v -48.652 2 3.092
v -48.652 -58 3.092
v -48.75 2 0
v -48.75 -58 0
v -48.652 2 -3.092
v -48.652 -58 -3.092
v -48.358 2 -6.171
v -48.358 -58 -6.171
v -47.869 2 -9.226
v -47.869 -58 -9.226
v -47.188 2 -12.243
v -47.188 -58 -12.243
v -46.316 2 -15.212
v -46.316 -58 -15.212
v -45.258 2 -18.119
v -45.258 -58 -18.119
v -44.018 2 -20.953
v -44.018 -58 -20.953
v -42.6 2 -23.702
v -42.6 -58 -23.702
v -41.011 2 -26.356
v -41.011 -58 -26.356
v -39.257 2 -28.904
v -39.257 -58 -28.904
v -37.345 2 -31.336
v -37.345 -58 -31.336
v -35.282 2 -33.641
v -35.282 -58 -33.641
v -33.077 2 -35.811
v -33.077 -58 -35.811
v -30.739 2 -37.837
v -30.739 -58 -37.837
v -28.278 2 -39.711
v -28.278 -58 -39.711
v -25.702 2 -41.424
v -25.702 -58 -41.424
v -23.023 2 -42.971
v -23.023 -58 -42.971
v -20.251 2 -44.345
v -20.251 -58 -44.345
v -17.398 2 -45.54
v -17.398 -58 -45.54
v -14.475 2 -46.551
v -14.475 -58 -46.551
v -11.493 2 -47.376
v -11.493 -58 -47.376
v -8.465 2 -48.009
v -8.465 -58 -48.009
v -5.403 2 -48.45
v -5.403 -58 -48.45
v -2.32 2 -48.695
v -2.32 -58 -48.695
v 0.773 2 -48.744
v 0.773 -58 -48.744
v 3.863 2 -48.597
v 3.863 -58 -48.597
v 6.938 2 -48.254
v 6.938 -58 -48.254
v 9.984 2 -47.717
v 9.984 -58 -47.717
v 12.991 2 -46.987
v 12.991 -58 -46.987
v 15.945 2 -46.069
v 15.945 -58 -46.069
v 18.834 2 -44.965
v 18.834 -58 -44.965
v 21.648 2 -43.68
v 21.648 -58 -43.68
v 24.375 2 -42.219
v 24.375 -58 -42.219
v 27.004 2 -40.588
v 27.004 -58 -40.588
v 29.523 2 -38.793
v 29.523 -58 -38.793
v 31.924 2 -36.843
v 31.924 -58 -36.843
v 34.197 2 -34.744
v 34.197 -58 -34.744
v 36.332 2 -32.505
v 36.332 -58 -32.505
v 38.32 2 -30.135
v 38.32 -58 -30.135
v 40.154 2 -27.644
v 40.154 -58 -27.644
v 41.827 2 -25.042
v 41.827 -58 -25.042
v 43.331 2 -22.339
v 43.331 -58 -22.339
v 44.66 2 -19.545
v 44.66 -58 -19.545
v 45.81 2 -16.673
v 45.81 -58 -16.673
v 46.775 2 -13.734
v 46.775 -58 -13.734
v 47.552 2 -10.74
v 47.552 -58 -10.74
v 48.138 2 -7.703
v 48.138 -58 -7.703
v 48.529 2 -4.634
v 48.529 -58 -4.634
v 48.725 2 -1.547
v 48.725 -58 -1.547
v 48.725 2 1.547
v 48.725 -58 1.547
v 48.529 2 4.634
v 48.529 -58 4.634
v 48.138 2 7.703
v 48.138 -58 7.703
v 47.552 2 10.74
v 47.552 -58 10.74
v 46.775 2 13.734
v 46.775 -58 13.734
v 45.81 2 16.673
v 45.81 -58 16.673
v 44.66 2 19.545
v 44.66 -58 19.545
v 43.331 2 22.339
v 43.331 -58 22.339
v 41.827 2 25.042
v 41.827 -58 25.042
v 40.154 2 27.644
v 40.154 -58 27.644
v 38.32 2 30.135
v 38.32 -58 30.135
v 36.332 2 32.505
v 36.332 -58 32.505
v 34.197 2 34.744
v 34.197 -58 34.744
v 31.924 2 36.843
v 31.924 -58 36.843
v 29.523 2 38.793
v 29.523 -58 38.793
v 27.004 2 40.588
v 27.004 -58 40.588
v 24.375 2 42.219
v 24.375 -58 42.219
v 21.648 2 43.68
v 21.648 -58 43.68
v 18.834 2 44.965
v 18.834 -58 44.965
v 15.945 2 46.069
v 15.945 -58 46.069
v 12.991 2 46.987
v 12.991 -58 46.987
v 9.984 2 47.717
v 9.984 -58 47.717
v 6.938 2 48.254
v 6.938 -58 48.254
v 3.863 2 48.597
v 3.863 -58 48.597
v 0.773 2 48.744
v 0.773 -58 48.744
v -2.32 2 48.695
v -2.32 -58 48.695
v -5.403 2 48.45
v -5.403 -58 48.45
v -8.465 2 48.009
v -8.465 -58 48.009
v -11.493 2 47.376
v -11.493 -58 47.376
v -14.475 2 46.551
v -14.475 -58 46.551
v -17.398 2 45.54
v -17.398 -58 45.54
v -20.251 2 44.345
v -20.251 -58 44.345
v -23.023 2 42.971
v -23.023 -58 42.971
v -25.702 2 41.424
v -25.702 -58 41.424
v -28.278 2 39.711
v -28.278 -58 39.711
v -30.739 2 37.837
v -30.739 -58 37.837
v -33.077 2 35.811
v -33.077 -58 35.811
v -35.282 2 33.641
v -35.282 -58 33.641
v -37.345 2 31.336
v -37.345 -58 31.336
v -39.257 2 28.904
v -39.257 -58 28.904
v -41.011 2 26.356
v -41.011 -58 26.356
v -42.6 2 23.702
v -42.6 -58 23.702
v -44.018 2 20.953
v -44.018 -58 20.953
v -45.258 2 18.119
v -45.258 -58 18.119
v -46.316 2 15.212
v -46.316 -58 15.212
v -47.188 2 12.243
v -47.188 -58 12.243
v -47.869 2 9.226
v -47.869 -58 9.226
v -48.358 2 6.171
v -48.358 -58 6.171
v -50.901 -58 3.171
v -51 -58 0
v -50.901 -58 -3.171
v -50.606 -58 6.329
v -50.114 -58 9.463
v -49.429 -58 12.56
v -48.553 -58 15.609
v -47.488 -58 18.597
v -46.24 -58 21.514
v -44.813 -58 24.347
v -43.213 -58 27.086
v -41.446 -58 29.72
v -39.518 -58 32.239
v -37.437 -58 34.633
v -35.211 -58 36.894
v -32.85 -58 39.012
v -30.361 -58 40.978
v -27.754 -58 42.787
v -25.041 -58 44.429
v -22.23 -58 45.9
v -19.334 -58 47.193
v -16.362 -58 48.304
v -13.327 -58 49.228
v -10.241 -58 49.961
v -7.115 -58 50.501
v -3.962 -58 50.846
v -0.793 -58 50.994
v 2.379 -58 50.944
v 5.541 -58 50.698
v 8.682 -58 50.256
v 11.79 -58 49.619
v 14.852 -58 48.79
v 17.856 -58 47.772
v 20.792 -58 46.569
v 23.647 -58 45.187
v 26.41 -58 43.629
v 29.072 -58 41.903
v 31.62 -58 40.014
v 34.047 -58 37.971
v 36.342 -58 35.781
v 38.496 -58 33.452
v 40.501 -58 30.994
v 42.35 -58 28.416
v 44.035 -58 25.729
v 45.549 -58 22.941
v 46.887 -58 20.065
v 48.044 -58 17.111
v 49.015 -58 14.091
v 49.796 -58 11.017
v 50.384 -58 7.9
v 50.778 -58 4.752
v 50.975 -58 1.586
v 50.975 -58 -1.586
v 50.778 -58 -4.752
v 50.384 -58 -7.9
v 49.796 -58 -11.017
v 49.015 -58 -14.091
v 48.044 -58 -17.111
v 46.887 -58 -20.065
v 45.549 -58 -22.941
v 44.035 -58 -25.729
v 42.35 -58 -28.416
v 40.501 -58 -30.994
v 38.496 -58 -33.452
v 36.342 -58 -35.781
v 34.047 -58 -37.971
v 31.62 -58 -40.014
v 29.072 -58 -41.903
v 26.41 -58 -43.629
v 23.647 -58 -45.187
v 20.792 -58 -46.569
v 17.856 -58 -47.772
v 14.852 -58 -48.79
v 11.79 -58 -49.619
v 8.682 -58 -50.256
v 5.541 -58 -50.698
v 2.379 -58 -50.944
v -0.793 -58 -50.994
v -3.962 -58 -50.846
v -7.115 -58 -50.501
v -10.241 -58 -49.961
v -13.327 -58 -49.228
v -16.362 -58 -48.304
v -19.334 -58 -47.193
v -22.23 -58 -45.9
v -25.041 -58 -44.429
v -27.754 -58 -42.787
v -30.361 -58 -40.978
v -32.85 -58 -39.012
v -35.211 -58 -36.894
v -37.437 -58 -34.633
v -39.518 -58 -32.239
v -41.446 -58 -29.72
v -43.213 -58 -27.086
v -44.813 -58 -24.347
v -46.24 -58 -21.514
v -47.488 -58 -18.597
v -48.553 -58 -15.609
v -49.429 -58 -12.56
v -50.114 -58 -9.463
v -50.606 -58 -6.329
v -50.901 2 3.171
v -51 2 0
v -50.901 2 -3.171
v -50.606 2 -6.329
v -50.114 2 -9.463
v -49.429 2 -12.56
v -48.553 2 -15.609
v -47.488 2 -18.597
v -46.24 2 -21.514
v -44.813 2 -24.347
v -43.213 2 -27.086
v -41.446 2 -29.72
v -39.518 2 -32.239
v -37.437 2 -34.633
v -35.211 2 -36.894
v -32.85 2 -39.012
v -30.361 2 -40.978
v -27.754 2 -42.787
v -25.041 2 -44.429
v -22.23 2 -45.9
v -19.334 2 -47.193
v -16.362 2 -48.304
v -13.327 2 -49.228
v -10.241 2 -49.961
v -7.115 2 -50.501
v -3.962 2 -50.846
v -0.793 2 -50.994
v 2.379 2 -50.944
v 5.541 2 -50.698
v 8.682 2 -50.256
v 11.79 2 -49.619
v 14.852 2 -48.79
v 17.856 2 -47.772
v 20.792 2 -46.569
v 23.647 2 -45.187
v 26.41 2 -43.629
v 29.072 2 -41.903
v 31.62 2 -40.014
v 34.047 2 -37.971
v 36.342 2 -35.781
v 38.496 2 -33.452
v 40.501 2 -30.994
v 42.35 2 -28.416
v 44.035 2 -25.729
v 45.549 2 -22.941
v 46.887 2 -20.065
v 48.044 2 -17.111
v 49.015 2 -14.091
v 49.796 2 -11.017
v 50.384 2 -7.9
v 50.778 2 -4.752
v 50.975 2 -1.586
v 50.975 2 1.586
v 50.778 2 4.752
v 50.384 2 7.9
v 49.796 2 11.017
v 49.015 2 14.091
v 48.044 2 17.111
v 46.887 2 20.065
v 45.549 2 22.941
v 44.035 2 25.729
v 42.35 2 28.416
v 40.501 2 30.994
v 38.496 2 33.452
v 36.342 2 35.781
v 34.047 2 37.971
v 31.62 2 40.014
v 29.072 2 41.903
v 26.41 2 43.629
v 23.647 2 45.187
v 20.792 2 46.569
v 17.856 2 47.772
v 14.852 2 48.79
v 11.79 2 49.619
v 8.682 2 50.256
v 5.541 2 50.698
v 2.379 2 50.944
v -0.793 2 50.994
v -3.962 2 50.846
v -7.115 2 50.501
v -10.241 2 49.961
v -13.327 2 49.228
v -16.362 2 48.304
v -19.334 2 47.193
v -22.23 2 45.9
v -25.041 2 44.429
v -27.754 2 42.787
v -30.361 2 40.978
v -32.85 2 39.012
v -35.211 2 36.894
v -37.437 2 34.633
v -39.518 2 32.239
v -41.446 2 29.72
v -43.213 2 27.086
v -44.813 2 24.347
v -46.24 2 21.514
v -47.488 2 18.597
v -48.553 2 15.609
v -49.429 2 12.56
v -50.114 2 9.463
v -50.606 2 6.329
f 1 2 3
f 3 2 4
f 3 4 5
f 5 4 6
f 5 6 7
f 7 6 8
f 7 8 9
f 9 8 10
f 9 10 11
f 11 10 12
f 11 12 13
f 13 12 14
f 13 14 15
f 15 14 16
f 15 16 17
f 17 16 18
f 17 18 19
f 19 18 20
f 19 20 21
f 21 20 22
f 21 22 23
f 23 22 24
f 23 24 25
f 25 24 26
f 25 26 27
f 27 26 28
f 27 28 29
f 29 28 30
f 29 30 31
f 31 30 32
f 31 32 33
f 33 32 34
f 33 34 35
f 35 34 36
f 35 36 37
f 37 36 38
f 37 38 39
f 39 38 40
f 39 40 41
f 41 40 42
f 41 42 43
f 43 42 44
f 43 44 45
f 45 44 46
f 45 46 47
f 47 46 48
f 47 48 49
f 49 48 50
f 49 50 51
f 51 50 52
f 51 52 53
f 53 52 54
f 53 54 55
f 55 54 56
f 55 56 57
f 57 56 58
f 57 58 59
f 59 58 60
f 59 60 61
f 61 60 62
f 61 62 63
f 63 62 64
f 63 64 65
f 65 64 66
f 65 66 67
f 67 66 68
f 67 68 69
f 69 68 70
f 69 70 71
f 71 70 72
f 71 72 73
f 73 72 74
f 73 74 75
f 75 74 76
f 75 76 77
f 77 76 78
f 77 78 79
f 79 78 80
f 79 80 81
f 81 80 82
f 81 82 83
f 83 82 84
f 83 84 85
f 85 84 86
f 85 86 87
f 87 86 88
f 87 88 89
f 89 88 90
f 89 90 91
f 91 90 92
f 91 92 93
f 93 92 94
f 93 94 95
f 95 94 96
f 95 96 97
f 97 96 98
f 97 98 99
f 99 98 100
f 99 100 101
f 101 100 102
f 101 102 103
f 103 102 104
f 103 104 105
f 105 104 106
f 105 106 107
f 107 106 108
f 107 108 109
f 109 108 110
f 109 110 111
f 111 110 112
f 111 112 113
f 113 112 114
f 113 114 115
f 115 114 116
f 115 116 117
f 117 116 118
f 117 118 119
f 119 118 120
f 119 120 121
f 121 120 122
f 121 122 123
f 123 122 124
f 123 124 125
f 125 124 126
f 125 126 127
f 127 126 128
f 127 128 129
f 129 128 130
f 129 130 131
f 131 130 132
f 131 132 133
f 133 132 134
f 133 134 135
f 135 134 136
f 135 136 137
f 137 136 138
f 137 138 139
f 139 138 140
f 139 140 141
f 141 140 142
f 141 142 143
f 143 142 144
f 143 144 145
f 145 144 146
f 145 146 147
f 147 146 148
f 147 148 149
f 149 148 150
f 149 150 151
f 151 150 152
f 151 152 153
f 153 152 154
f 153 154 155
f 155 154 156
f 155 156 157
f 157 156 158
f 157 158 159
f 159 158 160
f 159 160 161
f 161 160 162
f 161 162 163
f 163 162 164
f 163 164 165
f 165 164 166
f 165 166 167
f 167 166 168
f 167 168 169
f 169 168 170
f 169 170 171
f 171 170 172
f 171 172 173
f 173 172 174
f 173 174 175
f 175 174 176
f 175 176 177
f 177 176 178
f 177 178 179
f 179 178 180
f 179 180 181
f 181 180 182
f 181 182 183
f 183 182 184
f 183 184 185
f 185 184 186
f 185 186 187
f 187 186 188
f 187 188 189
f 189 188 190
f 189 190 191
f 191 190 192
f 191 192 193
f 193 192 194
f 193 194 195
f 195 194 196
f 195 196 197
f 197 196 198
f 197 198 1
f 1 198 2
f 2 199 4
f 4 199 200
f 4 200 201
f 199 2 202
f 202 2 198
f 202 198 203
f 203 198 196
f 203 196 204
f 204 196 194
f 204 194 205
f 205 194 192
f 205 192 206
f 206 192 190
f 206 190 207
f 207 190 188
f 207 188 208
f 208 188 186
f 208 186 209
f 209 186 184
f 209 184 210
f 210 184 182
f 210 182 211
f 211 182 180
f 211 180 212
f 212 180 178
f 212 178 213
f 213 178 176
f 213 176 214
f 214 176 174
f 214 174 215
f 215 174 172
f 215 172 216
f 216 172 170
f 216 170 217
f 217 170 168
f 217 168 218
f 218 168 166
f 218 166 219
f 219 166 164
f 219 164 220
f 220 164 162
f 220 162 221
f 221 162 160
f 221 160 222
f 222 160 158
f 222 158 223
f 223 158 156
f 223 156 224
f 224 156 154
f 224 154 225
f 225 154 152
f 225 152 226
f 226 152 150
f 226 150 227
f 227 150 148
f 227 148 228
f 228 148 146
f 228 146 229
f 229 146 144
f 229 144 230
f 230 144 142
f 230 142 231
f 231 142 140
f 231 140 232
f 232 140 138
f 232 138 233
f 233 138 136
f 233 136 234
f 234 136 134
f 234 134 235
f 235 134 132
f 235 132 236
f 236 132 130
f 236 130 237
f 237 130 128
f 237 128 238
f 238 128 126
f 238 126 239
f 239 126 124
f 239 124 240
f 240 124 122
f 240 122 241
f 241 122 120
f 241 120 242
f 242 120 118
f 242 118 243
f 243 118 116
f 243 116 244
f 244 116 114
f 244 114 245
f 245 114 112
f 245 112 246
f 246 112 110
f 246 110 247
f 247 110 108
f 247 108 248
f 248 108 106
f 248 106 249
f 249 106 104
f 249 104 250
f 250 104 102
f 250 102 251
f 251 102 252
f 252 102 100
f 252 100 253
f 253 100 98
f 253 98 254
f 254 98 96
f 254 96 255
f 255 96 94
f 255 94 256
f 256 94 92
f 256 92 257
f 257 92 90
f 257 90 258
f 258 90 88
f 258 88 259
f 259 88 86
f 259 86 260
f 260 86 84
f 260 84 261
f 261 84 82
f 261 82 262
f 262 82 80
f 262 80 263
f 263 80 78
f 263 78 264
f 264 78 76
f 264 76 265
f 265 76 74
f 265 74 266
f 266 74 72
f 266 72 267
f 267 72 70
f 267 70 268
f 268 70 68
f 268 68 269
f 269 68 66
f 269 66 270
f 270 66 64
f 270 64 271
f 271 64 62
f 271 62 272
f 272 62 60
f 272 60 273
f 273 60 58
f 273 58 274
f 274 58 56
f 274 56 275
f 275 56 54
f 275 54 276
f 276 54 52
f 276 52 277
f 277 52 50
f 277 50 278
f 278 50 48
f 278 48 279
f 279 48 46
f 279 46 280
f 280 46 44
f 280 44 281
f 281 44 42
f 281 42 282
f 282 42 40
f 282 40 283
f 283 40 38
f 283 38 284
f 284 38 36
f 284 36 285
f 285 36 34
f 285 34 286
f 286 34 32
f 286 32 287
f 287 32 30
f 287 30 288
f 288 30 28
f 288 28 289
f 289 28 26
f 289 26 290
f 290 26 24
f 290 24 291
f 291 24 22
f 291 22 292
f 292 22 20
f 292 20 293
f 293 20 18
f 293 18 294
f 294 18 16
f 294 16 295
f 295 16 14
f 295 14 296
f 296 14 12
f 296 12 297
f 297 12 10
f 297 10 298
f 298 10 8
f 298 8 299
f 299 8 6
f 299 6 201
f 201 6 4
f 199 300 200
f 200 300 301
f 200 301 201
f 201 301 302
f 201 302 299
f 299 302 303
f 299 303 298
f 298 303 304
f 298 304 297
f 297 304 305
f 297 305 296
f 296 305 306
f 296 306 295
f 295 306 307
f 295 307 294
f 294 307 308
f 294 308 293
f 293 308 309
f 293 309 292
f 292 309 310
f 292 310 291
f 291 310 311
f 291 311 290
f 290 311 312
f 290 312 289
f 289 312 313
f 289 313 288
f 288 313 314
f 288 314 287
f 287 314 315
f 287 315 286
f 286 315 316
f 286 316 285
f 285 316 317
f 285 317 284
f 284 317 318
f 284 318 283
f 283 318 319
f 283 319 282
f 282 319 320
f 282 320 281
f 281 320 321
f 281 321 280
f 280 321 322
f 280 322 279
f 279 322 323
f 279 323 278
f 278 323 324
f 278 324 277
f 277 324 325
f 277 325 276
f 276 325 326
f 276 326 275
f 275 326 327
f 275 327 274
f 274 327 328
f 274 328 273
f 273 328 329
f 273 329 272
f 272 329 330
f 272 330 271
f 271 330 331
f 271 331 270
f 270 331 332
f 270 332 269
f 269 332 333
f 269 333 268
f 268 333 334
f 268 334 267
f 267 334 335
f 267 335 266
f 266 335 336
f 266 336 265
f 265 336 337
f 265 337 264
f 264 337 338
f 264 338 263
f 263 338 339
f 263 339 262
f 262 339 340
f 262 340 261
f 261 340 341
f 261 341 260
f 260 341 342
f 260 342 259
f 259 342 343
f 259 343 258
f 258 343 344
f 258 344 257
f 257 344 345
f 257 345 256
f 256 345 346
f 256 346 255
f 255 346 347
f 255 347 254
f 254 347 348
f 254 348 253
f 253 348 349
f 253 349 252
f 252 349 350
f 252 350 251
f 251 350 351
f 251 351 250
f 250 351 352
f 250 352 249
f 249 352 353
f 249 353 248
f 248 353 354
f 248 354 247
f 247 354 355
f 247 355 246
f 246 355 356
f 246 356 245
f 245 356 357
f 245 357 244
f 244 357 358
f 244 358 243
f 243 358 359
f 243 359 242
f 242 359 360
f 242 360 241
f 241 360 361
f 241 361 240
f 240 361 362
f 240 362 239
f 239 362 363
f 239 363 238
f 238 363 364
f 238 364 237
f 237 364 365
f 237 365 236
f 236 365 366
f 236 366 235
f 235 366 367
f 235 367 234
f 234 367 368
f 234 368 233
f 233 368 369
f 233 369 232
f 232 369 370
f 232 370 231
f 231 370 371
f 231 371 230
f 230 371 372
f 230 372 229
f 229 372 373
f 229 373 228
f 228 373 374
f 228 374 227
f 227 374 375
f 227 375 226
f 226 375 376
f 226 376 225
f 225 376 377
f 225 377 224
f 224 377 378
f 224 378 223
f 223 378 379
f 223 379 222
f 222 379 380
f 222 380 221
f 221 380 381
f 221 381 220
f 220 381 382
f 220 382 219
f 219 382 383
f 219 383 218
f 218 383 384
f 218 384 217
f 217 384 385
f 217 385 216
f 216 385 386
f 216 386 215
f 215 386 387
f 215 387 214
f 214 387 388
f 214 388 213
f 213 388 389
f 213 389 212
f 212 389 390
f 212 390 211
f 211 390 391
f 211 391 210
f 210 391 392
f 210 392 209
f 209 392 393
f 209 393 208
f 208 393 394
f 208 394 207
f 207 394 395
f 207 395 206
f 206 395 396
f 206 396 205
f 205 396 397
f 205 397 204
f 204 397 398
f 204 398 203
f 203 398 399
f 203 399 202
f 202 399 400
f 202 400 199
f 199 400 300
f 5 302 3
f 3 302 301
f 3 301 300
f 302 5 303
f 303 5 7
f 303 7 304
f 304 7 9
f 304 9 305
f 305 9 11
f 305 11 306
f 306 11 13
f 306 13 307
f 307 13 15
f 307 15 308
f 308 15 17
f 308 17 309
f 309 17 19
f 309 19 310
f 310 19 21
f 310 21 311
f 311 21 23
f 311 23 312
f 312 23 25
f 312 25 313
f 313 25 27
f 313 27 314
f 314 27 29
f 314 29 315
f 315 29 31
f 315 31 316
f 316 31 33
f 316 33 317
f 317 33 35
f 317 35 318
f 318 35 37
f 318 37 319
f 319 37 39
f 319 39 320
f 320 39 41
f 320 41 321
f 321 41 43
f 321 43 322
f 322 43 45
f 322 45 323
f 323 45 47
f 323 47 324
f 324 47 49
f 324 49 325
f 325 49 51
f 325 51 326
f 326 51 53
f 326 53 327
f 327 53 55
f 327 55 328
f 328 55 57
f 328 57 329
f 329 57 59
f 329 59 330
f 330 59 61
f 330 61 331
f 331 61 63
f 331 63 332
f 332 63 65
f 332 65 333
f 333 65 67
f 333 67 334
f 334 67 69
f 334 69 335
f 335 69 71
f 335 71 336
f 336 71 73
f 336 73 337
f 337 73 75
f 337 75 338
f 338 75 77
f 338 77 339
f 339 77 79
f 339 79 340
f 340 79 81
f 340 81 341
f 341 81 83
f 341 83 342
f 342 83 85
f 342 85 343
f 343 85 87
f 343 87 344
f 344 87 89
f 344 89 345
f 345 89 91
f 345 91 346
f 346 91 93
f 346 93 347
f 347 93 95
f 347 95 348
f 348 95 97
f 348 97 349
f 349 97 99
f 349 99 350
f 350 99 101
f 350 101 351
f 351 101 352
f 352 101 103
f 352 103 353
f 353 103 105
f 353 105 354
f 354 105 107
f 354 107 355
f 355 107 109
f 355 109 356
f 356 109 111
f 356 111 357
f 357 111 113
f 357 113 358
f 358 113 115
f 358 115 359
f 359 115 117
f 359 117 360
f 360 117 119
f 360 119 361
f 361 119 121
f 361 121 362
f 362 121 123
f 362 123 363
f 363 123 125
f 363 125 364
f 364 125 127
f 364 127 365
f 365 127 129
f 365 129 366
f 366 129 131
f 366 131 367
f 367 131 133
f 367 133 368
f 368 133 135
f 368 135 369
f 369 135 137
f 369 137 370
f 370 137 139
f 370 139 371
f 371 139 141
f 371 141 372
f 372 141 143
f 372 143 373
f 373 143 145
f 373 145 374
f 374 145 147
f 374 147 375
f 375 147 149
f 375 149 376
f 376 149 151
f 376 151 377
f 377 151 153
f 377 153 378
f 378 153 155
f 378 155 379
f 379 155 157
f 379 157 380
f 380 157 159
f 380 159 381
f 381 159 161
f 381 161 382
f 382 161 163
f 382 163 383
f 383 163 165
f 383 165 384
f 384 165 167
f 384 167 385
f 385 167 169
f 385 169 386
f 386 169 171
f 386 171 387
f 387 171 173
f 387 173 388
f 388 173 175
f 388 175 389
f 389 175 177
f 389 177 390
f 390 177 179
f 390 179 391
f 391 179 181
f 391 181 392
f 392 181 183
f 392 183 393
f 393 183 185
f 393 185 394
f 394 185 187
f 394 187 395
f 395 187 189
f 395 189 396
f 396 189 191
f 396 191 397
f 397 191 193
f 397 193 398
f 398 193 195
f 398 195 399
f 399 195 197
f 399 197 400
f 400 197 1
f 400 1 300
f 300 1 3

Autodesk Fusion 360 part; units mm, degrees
sketch "Sketch1" plane through (0, 0, 0) normal (0, 1, 0) x (1, 0, 0)
  circle A0 centre (0, 0) radius 51
  circle A1 centre (0, 0) radius 48.75
  circle A2 centre (0, 0) radius 38
  dimension "d1" = 102
  dimension "d2" = 97.5
  dimension "d3" = 76
extrude "Extrude1" add sketch "Sketch1" along normal blind 2 contours A0 | A1 | A2
extrude "Extrude2" add sketch "Sketch1" against normal blind 15 contours A1
extrude "Extrude3" add sketch "Sketch1" against normal blind 58 contours A0
extrude "Extrude4" cut 1 faces at (44.8437, -15, 4.3098) along direction (0, 1, 0) up to surface (15 mm away)
extrude "Extrude5" cut sketch "Sketch1" along normal blind 20 contours A1 | A2
